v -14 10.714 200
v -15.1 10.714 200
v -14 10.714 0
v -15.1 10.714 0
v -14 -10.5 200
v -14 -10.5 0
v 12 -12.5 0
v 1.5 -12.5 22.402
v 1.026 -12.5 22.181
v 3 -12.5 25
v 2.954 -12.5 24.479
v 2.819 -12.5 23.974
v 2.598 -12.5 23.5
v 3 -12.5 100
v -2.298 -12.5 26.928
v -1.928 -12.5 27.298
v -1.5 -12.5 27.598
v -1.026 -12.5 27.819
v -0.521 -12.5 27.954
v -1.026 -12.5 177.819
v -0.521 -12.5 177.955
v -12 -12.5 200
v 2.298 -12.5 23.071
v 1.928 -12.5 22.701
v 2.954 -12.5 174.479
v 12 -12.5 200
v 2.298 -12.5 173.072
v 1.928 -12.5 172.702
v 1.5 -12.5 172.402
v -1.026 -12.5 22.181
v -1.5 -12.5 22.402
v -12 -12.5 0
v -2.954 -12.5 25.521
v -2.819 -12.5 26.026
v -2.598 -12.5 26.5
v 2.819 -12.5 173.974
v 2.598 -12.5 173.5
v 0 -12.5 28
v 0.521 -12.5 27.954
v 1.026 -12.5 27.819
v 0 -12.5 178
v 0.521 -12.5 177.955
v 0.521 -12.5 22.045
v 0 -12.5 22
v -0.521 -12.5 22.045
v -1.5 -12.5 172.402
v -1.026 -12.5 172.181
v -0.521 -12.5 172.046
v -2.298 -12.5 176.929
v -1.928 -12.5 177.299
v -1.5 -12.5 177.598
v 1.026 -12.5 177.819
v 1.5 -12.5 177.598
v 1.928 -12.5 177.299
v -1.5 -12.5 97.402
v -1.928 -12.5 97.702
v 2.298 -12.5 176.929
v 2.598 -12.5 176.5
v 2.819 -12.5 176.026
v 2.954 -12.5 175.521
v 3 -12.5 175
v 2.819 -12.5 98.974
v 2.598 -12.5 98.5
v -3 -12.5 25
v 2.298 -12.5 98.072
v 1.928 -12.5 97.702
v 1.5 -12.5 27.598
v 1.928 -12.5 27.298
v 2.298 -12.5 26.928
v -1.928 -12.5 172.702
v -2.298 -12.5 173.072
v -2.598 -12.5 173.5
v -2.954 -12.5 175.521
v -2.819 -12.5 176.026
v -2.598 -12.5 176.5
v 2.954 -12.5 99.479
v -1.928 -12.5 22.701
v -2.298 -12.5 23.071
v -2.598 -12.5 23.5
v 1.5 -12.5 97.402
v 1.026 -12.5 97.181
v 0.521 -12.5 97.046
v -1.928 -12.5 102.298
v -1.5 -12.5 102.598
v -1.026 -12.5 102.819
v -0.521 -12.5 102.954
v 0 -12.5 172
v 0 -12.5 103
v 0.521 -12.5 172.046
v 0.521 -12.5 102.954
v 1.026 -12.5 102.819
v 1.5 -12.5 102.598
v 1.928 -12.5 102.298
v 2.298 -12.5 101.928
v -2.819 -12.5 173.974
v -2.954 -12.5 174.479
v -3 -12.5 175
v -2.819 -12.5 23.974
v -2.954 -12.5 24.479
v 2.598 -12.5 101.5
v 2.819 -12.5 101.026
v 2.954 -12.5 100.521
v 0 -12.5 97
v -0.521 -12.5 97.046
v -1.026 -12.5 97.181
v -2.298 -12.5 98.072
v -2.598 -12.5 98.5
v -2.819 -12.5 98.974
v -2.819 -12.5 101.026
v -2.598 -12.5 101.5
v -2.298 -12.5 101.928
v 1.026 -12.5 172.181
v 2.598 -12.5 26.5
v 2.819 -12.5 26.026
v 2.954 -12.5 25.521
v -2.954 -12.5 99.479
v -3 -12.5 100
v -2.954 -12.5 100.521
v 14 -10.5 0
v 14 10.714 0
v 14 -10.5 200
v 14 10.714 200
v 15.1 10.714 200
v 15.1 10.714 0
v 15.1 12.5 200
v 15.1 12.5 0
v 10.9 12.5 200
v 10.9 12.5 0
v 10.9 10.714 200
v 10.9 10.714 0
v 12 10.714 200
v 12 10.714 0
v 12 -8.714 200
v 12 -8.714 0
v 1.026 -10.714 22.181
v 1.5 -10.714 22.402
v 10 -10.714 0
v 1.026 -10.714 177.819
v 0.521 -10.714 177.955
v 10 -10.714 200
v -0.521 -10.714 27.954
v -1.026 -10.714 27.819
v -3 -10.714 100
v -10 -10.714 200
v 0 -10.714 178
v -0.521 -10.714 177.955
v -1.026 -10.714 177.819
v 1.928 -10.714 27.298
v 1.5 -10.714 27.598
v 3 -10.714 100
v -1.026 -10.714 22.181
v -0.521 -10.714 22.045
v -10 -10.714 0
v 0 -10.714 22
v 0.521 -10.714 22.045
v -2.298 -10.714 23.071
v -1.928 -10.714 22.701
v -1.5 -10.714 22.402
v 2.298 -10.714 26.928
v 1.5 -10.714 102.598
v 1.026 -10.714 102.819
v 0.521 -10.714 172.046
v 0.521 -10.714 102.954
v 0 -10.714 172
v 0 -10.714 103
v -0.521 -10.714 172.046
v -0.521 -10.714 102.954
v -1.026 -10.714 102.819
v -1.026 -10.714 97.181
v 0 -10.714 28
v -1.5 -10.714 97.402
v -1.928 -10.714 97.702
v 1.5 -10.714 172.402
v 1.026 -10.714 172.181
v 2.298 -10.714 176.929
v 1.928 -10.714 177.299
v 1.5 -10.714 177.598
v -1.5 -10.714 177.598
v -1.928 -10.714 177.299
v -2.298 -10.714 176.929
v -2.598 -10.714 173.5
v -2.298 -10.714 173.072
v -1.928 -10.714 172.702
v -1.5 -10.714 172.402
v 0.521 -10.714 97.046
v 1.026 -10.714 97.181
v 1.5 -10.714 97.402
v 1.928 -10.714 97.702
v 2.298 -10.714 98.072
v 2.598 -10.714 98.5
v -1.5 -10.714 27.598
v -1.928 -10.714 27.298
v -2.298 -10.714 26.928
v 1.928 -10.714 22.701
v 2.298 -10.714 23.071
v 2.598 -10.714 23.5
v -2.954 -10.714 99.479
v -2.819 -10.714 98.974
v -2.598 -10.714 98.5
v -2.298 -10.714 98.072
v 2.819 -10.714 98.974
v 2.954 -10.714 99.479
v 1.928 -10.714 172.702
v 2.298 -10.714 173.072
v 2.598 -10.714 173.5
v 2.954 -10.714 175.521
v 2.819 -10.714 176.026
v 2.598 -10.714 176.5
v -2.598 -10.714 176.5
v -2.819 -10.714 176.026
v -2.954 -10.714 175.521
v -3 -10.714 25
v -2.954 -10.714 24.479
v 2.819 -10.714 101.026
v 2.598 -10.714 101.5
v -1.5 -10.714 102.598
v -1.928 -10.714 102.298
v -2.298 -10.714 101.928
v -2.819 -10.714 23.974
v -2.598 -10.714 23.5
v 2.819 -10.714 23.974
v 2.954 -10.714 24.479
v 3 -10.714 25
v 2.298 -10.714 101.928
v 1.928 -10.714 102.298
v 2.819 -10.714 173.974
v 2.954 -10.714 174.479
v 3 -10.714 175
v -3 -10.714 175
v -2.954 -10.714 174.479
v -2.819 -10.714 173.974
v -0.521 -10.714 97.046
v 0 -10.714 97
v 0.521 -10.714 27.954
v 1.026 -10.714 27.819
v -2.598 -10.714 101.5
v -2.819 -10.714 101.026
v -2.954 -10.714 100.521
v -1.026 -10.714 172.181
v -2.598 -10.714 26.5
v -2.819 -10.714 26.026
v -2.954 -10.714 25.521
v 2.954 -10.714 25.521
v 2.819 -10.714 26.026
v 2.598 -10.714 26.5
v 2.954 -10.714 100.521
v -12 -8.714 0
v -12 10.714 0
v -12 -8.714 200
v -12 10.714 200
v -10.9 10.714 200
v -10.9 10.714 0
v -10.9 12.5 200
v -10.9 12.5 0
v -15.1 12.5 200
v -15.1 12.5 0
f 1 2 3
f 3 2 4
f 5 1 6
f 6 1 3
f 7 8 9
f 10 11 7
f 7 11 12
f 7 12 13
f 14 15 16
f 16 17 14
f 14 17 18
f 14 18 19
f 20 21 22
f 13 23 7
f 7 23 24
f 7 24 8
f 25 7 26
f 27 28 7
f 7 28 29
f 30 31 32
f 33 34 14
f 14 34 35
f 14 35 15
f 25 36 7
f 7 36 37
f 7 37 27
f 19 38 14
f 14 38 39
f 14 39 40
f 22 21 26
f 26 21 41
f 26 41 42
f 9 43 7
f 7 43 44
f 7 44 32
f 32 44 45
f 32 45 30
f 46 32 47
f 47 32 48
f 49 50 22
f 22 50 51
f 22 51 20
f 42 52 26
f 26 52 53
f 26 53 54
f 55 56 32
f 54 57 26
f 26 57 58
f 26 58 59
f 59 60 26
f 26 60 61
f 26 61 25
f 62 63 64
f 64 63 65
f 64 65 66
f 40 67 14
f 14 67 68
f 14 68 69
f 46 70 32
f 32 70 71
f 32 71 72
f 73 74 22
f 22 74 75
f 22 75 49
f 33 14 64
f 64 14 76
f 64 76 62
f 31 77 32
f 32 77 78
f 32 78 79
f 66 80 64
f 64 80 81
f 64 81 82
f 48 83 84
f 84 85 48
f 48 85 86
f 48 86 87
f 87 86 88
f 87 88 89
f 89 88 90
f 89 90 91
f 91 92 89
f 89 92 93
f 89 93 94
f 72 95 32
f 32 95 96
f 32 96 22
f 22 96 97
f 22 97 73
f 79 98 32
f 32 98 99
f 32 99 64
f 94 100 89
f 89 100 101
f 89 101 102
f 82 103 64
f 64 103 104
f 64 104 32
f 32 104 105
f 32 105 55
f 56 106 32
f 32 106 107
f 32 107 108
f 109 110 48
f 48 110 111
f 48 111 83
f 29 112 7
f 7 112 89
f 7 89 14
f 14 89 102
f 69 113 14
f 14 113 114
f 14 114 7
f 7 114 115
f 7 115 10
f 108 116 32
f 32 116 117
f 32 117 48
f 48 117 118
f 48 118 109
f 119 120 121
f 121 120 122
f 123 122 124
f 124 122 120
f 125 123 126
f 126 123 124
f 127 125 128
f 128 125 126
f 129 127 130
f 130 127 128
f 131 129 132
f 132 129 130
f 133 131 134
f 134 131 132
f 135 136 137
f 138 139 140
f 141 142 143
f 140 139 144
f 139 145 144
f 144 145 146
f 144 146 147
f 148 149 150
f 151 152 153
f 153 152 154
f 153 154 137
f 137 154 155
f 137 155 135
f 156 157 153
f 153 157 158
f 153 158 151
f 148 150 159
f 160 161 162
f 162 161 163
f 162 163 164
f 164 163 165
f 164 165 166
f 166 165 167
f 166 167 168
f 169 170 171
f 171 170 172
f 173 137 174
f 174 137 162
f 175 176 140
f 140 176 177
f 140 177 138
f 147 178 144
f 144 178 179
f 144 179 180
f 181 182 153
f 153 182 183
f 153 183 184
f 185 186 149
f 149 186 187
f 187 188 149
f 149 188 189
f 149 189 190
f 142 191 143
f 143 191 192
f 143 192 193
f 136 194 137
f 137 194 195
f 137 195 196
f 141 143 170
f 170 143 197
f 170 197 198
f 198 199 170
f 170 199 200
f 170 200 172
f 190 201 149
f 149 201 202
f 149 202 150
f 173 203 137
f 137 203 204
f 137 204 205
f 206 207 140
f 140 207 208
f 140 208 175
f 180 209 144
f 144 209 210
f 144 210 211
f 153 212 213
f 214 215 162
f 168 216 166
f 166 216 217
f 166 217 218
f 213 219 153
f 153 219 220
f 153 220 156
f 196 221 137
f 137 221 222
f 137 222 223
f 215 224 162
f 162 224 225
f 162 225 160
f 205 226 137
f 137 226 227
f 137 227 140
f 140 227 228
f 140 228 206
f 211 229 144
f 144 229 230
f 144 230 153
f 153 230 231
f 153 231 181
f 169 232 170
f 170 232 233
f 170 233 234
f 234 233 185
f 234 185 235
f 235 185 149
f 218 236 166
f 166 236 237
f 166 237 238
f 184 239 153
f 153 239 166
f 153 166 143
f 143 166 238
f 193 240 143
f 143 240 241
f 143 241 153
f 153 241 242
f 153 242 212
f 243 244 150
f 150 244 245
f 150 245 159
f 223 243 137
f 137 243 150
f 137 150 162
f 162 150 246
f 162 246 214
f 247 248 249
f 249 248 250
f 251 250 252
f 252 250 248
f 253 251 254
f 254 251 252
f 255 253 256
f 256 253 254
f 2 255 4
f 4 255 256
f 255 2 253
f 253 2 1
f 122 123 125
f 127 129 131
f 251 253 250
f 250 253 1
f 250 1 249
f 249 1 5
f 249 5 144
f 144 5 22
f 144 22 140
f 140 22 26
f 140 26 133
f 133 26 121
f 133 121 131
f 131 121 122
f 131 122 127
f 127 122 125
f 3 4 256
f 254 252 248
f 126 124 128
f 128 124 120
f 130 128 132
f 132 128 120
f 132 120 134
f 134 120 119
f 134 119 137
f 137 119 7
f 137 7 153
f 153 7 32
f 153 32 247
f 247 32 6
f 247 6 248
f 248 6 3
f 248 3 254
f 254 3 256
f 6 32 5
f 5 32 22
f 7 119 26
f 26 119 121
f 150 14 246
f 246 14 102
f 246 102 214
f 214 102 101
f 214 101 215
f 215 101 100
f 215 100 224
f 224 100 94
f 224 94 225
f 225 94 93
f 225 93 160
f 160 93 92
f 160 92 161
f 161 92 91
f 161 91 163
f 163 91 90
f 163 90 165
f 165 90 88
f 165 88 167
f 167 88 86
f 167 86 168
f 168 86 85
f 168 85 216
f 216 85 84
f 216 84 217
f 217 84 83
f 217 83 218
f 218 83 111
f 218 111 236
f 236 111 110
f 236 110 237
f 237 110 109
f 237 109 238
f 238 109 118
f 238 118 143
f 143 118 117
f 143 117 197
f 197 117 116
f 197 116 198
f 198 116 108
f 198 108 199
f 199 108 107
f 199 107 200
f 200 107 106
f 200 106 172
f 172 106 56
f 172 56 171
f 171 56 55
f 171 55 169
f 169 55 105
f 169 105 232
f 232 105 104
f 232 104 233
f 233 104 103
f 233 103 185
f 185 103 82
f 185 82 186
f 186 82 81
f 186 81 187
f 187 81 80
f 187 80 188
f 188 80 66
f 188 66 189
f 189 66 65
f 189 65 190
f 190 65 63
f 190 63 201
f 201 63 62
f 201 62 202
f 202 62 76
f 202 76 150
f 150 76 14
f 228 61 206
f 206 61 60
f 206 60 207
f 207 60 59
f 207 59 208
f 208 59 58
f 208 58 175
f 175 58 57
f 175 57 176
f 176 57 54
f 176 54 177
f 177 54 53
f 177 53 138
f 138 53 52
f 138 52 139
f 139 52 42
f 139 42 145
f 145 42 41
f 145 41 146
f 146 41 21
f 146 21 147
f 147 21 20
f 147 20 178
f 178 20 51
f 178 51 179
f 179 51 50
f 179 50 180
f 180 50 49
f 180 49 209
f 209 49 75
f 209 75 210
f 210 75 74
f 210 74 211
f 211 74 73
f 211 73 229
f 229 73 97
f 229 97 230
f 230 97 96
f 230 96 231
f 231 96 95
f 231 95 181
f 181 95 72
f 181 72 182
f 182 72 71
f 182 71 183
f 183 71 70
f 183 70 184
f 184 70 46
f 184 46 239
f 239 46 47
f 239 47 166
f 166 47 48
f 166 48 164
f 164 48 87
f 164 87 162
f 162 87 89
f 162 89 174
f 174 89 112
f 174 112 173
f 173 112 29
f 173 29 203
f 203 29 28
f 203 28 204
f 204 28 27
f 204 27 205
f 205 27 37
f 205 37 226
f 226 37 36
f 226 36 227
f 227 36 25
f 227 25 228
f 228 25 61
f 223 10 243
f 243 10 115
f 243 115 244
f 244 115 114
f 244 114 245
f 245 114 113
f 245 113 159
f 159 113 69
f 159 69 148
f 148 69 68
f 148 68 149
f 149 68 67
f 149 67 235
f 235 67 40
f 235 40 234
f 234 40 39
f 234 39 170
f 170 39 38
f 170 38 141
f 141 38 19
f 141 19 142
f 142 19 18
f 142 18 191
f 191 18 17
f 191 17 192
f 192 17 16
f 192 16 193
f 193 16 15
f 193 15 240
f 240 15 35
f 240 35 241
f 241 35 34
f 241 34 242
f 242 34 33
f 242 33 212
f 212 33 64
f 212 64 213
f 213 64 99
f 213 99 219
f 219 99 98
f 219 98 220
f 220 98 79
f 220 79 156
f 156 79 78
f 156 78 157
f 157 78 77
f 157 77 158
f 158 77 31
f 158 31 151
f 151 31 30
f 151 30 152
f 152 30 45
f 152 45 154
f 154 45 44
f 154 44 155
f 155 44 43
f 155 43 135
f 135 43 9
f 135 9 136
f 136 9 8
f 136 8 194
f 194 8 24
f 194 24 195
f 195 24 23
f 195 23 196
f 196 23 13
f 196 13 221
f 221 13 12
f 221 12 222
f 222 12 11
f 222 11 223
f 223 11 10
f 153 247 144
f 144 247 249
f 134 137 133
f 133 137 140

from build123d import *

# Parameters (mm, degrees)
BOSS_EXTRU_1_DEPTH           = 200
CHANFREIN1_SIZE              = 2
ESQUISSE2_R                  = 3
ENL_V_MAT_EXTRU_1_DEPTH      = 1
ENL_V_MAT_EXTRU_1_DEPTH_BACK = 26
CHANFREIN2_SIZE              = 2
CHANFREIN3_SIZE              = 2


with BuildPart() as part:
    # Esquisse1 → Boss.-Extru.1 (new body)
    with BuildSketch(Plane.XY):
        Polygon((-14, 10.714285714), (-14, -12.5), (14, -12.5), (14, 10.714285714), (15.100215679, 10.714285714), (15.100215679, 12.5), (14, 12.5), (10.899784321, 12.5), (10.899784321, 10.714285714), (12, 10.714285714), (12, -10.714285714), (-12, -10.714285714), (-12, 10.714285714), (-10.899784321, 10.714285714), (-10.899784321, 12.5), (-14, 12.5), (-15.100215679, 12.5), (-15.100215679, 10.714285714), align=None)
    extrude(amount=BOSS_EXTRU_1_DEPTH)

    # Chanfrein1
    chanfrein1_edges = [part.edges().sort_by_distance(p)[0] for p in [
        (14, -12.5, 100),
        (-14, -12.5, 100),
    ]]
    chamfer(chanfrein1_edges, length=CHANFREIN1_SIZE)

    # Esquisse2 → Enlèv. mat.-Extru.1 (cut, two sides)
    with BuildSketch(Plane.XZ.offset(12.5)) as enl_v_mat_extru_1_sk:
        with Locations((0, 100)):
            Circle(ESQUISSE2_R)
        with Locations((0, 175.000381003)):
            Circle(ESQUISSE2_R)
        with Locations((0, 24.999618997)):
            Circle(ESQUISSE2_R)
    extrude(amount=ENL_V_MAT_EXTRU_1_DEPTH, mode=Mode.SUBTRACT)
    extrude(enl_v_mat_extru_1_sk.sketch, amount=-ENL_V_MAT_EXTRU_1_DEPTH_BACK, mode=Mode.SUBTRACT)

    # Chanfrein2
    chanfrein2_edges = [part.edges().sort_by_distance(p)[0] for p in [
        (-12, -10.714285714, 100),
    ]]
    chamfer(chanfrein2_edges, length=CHANFREIN2_SIZE)

    # Chanfrein3
    chanfrein3_edges = [part.edges().sort_by_distance(p)[0] for p in [
        (12, -10.714285714, 100),
    ]]
    chamfer(chanfrein3_edges, length=CHANFREIN3_SIZE)


solid = part.part
